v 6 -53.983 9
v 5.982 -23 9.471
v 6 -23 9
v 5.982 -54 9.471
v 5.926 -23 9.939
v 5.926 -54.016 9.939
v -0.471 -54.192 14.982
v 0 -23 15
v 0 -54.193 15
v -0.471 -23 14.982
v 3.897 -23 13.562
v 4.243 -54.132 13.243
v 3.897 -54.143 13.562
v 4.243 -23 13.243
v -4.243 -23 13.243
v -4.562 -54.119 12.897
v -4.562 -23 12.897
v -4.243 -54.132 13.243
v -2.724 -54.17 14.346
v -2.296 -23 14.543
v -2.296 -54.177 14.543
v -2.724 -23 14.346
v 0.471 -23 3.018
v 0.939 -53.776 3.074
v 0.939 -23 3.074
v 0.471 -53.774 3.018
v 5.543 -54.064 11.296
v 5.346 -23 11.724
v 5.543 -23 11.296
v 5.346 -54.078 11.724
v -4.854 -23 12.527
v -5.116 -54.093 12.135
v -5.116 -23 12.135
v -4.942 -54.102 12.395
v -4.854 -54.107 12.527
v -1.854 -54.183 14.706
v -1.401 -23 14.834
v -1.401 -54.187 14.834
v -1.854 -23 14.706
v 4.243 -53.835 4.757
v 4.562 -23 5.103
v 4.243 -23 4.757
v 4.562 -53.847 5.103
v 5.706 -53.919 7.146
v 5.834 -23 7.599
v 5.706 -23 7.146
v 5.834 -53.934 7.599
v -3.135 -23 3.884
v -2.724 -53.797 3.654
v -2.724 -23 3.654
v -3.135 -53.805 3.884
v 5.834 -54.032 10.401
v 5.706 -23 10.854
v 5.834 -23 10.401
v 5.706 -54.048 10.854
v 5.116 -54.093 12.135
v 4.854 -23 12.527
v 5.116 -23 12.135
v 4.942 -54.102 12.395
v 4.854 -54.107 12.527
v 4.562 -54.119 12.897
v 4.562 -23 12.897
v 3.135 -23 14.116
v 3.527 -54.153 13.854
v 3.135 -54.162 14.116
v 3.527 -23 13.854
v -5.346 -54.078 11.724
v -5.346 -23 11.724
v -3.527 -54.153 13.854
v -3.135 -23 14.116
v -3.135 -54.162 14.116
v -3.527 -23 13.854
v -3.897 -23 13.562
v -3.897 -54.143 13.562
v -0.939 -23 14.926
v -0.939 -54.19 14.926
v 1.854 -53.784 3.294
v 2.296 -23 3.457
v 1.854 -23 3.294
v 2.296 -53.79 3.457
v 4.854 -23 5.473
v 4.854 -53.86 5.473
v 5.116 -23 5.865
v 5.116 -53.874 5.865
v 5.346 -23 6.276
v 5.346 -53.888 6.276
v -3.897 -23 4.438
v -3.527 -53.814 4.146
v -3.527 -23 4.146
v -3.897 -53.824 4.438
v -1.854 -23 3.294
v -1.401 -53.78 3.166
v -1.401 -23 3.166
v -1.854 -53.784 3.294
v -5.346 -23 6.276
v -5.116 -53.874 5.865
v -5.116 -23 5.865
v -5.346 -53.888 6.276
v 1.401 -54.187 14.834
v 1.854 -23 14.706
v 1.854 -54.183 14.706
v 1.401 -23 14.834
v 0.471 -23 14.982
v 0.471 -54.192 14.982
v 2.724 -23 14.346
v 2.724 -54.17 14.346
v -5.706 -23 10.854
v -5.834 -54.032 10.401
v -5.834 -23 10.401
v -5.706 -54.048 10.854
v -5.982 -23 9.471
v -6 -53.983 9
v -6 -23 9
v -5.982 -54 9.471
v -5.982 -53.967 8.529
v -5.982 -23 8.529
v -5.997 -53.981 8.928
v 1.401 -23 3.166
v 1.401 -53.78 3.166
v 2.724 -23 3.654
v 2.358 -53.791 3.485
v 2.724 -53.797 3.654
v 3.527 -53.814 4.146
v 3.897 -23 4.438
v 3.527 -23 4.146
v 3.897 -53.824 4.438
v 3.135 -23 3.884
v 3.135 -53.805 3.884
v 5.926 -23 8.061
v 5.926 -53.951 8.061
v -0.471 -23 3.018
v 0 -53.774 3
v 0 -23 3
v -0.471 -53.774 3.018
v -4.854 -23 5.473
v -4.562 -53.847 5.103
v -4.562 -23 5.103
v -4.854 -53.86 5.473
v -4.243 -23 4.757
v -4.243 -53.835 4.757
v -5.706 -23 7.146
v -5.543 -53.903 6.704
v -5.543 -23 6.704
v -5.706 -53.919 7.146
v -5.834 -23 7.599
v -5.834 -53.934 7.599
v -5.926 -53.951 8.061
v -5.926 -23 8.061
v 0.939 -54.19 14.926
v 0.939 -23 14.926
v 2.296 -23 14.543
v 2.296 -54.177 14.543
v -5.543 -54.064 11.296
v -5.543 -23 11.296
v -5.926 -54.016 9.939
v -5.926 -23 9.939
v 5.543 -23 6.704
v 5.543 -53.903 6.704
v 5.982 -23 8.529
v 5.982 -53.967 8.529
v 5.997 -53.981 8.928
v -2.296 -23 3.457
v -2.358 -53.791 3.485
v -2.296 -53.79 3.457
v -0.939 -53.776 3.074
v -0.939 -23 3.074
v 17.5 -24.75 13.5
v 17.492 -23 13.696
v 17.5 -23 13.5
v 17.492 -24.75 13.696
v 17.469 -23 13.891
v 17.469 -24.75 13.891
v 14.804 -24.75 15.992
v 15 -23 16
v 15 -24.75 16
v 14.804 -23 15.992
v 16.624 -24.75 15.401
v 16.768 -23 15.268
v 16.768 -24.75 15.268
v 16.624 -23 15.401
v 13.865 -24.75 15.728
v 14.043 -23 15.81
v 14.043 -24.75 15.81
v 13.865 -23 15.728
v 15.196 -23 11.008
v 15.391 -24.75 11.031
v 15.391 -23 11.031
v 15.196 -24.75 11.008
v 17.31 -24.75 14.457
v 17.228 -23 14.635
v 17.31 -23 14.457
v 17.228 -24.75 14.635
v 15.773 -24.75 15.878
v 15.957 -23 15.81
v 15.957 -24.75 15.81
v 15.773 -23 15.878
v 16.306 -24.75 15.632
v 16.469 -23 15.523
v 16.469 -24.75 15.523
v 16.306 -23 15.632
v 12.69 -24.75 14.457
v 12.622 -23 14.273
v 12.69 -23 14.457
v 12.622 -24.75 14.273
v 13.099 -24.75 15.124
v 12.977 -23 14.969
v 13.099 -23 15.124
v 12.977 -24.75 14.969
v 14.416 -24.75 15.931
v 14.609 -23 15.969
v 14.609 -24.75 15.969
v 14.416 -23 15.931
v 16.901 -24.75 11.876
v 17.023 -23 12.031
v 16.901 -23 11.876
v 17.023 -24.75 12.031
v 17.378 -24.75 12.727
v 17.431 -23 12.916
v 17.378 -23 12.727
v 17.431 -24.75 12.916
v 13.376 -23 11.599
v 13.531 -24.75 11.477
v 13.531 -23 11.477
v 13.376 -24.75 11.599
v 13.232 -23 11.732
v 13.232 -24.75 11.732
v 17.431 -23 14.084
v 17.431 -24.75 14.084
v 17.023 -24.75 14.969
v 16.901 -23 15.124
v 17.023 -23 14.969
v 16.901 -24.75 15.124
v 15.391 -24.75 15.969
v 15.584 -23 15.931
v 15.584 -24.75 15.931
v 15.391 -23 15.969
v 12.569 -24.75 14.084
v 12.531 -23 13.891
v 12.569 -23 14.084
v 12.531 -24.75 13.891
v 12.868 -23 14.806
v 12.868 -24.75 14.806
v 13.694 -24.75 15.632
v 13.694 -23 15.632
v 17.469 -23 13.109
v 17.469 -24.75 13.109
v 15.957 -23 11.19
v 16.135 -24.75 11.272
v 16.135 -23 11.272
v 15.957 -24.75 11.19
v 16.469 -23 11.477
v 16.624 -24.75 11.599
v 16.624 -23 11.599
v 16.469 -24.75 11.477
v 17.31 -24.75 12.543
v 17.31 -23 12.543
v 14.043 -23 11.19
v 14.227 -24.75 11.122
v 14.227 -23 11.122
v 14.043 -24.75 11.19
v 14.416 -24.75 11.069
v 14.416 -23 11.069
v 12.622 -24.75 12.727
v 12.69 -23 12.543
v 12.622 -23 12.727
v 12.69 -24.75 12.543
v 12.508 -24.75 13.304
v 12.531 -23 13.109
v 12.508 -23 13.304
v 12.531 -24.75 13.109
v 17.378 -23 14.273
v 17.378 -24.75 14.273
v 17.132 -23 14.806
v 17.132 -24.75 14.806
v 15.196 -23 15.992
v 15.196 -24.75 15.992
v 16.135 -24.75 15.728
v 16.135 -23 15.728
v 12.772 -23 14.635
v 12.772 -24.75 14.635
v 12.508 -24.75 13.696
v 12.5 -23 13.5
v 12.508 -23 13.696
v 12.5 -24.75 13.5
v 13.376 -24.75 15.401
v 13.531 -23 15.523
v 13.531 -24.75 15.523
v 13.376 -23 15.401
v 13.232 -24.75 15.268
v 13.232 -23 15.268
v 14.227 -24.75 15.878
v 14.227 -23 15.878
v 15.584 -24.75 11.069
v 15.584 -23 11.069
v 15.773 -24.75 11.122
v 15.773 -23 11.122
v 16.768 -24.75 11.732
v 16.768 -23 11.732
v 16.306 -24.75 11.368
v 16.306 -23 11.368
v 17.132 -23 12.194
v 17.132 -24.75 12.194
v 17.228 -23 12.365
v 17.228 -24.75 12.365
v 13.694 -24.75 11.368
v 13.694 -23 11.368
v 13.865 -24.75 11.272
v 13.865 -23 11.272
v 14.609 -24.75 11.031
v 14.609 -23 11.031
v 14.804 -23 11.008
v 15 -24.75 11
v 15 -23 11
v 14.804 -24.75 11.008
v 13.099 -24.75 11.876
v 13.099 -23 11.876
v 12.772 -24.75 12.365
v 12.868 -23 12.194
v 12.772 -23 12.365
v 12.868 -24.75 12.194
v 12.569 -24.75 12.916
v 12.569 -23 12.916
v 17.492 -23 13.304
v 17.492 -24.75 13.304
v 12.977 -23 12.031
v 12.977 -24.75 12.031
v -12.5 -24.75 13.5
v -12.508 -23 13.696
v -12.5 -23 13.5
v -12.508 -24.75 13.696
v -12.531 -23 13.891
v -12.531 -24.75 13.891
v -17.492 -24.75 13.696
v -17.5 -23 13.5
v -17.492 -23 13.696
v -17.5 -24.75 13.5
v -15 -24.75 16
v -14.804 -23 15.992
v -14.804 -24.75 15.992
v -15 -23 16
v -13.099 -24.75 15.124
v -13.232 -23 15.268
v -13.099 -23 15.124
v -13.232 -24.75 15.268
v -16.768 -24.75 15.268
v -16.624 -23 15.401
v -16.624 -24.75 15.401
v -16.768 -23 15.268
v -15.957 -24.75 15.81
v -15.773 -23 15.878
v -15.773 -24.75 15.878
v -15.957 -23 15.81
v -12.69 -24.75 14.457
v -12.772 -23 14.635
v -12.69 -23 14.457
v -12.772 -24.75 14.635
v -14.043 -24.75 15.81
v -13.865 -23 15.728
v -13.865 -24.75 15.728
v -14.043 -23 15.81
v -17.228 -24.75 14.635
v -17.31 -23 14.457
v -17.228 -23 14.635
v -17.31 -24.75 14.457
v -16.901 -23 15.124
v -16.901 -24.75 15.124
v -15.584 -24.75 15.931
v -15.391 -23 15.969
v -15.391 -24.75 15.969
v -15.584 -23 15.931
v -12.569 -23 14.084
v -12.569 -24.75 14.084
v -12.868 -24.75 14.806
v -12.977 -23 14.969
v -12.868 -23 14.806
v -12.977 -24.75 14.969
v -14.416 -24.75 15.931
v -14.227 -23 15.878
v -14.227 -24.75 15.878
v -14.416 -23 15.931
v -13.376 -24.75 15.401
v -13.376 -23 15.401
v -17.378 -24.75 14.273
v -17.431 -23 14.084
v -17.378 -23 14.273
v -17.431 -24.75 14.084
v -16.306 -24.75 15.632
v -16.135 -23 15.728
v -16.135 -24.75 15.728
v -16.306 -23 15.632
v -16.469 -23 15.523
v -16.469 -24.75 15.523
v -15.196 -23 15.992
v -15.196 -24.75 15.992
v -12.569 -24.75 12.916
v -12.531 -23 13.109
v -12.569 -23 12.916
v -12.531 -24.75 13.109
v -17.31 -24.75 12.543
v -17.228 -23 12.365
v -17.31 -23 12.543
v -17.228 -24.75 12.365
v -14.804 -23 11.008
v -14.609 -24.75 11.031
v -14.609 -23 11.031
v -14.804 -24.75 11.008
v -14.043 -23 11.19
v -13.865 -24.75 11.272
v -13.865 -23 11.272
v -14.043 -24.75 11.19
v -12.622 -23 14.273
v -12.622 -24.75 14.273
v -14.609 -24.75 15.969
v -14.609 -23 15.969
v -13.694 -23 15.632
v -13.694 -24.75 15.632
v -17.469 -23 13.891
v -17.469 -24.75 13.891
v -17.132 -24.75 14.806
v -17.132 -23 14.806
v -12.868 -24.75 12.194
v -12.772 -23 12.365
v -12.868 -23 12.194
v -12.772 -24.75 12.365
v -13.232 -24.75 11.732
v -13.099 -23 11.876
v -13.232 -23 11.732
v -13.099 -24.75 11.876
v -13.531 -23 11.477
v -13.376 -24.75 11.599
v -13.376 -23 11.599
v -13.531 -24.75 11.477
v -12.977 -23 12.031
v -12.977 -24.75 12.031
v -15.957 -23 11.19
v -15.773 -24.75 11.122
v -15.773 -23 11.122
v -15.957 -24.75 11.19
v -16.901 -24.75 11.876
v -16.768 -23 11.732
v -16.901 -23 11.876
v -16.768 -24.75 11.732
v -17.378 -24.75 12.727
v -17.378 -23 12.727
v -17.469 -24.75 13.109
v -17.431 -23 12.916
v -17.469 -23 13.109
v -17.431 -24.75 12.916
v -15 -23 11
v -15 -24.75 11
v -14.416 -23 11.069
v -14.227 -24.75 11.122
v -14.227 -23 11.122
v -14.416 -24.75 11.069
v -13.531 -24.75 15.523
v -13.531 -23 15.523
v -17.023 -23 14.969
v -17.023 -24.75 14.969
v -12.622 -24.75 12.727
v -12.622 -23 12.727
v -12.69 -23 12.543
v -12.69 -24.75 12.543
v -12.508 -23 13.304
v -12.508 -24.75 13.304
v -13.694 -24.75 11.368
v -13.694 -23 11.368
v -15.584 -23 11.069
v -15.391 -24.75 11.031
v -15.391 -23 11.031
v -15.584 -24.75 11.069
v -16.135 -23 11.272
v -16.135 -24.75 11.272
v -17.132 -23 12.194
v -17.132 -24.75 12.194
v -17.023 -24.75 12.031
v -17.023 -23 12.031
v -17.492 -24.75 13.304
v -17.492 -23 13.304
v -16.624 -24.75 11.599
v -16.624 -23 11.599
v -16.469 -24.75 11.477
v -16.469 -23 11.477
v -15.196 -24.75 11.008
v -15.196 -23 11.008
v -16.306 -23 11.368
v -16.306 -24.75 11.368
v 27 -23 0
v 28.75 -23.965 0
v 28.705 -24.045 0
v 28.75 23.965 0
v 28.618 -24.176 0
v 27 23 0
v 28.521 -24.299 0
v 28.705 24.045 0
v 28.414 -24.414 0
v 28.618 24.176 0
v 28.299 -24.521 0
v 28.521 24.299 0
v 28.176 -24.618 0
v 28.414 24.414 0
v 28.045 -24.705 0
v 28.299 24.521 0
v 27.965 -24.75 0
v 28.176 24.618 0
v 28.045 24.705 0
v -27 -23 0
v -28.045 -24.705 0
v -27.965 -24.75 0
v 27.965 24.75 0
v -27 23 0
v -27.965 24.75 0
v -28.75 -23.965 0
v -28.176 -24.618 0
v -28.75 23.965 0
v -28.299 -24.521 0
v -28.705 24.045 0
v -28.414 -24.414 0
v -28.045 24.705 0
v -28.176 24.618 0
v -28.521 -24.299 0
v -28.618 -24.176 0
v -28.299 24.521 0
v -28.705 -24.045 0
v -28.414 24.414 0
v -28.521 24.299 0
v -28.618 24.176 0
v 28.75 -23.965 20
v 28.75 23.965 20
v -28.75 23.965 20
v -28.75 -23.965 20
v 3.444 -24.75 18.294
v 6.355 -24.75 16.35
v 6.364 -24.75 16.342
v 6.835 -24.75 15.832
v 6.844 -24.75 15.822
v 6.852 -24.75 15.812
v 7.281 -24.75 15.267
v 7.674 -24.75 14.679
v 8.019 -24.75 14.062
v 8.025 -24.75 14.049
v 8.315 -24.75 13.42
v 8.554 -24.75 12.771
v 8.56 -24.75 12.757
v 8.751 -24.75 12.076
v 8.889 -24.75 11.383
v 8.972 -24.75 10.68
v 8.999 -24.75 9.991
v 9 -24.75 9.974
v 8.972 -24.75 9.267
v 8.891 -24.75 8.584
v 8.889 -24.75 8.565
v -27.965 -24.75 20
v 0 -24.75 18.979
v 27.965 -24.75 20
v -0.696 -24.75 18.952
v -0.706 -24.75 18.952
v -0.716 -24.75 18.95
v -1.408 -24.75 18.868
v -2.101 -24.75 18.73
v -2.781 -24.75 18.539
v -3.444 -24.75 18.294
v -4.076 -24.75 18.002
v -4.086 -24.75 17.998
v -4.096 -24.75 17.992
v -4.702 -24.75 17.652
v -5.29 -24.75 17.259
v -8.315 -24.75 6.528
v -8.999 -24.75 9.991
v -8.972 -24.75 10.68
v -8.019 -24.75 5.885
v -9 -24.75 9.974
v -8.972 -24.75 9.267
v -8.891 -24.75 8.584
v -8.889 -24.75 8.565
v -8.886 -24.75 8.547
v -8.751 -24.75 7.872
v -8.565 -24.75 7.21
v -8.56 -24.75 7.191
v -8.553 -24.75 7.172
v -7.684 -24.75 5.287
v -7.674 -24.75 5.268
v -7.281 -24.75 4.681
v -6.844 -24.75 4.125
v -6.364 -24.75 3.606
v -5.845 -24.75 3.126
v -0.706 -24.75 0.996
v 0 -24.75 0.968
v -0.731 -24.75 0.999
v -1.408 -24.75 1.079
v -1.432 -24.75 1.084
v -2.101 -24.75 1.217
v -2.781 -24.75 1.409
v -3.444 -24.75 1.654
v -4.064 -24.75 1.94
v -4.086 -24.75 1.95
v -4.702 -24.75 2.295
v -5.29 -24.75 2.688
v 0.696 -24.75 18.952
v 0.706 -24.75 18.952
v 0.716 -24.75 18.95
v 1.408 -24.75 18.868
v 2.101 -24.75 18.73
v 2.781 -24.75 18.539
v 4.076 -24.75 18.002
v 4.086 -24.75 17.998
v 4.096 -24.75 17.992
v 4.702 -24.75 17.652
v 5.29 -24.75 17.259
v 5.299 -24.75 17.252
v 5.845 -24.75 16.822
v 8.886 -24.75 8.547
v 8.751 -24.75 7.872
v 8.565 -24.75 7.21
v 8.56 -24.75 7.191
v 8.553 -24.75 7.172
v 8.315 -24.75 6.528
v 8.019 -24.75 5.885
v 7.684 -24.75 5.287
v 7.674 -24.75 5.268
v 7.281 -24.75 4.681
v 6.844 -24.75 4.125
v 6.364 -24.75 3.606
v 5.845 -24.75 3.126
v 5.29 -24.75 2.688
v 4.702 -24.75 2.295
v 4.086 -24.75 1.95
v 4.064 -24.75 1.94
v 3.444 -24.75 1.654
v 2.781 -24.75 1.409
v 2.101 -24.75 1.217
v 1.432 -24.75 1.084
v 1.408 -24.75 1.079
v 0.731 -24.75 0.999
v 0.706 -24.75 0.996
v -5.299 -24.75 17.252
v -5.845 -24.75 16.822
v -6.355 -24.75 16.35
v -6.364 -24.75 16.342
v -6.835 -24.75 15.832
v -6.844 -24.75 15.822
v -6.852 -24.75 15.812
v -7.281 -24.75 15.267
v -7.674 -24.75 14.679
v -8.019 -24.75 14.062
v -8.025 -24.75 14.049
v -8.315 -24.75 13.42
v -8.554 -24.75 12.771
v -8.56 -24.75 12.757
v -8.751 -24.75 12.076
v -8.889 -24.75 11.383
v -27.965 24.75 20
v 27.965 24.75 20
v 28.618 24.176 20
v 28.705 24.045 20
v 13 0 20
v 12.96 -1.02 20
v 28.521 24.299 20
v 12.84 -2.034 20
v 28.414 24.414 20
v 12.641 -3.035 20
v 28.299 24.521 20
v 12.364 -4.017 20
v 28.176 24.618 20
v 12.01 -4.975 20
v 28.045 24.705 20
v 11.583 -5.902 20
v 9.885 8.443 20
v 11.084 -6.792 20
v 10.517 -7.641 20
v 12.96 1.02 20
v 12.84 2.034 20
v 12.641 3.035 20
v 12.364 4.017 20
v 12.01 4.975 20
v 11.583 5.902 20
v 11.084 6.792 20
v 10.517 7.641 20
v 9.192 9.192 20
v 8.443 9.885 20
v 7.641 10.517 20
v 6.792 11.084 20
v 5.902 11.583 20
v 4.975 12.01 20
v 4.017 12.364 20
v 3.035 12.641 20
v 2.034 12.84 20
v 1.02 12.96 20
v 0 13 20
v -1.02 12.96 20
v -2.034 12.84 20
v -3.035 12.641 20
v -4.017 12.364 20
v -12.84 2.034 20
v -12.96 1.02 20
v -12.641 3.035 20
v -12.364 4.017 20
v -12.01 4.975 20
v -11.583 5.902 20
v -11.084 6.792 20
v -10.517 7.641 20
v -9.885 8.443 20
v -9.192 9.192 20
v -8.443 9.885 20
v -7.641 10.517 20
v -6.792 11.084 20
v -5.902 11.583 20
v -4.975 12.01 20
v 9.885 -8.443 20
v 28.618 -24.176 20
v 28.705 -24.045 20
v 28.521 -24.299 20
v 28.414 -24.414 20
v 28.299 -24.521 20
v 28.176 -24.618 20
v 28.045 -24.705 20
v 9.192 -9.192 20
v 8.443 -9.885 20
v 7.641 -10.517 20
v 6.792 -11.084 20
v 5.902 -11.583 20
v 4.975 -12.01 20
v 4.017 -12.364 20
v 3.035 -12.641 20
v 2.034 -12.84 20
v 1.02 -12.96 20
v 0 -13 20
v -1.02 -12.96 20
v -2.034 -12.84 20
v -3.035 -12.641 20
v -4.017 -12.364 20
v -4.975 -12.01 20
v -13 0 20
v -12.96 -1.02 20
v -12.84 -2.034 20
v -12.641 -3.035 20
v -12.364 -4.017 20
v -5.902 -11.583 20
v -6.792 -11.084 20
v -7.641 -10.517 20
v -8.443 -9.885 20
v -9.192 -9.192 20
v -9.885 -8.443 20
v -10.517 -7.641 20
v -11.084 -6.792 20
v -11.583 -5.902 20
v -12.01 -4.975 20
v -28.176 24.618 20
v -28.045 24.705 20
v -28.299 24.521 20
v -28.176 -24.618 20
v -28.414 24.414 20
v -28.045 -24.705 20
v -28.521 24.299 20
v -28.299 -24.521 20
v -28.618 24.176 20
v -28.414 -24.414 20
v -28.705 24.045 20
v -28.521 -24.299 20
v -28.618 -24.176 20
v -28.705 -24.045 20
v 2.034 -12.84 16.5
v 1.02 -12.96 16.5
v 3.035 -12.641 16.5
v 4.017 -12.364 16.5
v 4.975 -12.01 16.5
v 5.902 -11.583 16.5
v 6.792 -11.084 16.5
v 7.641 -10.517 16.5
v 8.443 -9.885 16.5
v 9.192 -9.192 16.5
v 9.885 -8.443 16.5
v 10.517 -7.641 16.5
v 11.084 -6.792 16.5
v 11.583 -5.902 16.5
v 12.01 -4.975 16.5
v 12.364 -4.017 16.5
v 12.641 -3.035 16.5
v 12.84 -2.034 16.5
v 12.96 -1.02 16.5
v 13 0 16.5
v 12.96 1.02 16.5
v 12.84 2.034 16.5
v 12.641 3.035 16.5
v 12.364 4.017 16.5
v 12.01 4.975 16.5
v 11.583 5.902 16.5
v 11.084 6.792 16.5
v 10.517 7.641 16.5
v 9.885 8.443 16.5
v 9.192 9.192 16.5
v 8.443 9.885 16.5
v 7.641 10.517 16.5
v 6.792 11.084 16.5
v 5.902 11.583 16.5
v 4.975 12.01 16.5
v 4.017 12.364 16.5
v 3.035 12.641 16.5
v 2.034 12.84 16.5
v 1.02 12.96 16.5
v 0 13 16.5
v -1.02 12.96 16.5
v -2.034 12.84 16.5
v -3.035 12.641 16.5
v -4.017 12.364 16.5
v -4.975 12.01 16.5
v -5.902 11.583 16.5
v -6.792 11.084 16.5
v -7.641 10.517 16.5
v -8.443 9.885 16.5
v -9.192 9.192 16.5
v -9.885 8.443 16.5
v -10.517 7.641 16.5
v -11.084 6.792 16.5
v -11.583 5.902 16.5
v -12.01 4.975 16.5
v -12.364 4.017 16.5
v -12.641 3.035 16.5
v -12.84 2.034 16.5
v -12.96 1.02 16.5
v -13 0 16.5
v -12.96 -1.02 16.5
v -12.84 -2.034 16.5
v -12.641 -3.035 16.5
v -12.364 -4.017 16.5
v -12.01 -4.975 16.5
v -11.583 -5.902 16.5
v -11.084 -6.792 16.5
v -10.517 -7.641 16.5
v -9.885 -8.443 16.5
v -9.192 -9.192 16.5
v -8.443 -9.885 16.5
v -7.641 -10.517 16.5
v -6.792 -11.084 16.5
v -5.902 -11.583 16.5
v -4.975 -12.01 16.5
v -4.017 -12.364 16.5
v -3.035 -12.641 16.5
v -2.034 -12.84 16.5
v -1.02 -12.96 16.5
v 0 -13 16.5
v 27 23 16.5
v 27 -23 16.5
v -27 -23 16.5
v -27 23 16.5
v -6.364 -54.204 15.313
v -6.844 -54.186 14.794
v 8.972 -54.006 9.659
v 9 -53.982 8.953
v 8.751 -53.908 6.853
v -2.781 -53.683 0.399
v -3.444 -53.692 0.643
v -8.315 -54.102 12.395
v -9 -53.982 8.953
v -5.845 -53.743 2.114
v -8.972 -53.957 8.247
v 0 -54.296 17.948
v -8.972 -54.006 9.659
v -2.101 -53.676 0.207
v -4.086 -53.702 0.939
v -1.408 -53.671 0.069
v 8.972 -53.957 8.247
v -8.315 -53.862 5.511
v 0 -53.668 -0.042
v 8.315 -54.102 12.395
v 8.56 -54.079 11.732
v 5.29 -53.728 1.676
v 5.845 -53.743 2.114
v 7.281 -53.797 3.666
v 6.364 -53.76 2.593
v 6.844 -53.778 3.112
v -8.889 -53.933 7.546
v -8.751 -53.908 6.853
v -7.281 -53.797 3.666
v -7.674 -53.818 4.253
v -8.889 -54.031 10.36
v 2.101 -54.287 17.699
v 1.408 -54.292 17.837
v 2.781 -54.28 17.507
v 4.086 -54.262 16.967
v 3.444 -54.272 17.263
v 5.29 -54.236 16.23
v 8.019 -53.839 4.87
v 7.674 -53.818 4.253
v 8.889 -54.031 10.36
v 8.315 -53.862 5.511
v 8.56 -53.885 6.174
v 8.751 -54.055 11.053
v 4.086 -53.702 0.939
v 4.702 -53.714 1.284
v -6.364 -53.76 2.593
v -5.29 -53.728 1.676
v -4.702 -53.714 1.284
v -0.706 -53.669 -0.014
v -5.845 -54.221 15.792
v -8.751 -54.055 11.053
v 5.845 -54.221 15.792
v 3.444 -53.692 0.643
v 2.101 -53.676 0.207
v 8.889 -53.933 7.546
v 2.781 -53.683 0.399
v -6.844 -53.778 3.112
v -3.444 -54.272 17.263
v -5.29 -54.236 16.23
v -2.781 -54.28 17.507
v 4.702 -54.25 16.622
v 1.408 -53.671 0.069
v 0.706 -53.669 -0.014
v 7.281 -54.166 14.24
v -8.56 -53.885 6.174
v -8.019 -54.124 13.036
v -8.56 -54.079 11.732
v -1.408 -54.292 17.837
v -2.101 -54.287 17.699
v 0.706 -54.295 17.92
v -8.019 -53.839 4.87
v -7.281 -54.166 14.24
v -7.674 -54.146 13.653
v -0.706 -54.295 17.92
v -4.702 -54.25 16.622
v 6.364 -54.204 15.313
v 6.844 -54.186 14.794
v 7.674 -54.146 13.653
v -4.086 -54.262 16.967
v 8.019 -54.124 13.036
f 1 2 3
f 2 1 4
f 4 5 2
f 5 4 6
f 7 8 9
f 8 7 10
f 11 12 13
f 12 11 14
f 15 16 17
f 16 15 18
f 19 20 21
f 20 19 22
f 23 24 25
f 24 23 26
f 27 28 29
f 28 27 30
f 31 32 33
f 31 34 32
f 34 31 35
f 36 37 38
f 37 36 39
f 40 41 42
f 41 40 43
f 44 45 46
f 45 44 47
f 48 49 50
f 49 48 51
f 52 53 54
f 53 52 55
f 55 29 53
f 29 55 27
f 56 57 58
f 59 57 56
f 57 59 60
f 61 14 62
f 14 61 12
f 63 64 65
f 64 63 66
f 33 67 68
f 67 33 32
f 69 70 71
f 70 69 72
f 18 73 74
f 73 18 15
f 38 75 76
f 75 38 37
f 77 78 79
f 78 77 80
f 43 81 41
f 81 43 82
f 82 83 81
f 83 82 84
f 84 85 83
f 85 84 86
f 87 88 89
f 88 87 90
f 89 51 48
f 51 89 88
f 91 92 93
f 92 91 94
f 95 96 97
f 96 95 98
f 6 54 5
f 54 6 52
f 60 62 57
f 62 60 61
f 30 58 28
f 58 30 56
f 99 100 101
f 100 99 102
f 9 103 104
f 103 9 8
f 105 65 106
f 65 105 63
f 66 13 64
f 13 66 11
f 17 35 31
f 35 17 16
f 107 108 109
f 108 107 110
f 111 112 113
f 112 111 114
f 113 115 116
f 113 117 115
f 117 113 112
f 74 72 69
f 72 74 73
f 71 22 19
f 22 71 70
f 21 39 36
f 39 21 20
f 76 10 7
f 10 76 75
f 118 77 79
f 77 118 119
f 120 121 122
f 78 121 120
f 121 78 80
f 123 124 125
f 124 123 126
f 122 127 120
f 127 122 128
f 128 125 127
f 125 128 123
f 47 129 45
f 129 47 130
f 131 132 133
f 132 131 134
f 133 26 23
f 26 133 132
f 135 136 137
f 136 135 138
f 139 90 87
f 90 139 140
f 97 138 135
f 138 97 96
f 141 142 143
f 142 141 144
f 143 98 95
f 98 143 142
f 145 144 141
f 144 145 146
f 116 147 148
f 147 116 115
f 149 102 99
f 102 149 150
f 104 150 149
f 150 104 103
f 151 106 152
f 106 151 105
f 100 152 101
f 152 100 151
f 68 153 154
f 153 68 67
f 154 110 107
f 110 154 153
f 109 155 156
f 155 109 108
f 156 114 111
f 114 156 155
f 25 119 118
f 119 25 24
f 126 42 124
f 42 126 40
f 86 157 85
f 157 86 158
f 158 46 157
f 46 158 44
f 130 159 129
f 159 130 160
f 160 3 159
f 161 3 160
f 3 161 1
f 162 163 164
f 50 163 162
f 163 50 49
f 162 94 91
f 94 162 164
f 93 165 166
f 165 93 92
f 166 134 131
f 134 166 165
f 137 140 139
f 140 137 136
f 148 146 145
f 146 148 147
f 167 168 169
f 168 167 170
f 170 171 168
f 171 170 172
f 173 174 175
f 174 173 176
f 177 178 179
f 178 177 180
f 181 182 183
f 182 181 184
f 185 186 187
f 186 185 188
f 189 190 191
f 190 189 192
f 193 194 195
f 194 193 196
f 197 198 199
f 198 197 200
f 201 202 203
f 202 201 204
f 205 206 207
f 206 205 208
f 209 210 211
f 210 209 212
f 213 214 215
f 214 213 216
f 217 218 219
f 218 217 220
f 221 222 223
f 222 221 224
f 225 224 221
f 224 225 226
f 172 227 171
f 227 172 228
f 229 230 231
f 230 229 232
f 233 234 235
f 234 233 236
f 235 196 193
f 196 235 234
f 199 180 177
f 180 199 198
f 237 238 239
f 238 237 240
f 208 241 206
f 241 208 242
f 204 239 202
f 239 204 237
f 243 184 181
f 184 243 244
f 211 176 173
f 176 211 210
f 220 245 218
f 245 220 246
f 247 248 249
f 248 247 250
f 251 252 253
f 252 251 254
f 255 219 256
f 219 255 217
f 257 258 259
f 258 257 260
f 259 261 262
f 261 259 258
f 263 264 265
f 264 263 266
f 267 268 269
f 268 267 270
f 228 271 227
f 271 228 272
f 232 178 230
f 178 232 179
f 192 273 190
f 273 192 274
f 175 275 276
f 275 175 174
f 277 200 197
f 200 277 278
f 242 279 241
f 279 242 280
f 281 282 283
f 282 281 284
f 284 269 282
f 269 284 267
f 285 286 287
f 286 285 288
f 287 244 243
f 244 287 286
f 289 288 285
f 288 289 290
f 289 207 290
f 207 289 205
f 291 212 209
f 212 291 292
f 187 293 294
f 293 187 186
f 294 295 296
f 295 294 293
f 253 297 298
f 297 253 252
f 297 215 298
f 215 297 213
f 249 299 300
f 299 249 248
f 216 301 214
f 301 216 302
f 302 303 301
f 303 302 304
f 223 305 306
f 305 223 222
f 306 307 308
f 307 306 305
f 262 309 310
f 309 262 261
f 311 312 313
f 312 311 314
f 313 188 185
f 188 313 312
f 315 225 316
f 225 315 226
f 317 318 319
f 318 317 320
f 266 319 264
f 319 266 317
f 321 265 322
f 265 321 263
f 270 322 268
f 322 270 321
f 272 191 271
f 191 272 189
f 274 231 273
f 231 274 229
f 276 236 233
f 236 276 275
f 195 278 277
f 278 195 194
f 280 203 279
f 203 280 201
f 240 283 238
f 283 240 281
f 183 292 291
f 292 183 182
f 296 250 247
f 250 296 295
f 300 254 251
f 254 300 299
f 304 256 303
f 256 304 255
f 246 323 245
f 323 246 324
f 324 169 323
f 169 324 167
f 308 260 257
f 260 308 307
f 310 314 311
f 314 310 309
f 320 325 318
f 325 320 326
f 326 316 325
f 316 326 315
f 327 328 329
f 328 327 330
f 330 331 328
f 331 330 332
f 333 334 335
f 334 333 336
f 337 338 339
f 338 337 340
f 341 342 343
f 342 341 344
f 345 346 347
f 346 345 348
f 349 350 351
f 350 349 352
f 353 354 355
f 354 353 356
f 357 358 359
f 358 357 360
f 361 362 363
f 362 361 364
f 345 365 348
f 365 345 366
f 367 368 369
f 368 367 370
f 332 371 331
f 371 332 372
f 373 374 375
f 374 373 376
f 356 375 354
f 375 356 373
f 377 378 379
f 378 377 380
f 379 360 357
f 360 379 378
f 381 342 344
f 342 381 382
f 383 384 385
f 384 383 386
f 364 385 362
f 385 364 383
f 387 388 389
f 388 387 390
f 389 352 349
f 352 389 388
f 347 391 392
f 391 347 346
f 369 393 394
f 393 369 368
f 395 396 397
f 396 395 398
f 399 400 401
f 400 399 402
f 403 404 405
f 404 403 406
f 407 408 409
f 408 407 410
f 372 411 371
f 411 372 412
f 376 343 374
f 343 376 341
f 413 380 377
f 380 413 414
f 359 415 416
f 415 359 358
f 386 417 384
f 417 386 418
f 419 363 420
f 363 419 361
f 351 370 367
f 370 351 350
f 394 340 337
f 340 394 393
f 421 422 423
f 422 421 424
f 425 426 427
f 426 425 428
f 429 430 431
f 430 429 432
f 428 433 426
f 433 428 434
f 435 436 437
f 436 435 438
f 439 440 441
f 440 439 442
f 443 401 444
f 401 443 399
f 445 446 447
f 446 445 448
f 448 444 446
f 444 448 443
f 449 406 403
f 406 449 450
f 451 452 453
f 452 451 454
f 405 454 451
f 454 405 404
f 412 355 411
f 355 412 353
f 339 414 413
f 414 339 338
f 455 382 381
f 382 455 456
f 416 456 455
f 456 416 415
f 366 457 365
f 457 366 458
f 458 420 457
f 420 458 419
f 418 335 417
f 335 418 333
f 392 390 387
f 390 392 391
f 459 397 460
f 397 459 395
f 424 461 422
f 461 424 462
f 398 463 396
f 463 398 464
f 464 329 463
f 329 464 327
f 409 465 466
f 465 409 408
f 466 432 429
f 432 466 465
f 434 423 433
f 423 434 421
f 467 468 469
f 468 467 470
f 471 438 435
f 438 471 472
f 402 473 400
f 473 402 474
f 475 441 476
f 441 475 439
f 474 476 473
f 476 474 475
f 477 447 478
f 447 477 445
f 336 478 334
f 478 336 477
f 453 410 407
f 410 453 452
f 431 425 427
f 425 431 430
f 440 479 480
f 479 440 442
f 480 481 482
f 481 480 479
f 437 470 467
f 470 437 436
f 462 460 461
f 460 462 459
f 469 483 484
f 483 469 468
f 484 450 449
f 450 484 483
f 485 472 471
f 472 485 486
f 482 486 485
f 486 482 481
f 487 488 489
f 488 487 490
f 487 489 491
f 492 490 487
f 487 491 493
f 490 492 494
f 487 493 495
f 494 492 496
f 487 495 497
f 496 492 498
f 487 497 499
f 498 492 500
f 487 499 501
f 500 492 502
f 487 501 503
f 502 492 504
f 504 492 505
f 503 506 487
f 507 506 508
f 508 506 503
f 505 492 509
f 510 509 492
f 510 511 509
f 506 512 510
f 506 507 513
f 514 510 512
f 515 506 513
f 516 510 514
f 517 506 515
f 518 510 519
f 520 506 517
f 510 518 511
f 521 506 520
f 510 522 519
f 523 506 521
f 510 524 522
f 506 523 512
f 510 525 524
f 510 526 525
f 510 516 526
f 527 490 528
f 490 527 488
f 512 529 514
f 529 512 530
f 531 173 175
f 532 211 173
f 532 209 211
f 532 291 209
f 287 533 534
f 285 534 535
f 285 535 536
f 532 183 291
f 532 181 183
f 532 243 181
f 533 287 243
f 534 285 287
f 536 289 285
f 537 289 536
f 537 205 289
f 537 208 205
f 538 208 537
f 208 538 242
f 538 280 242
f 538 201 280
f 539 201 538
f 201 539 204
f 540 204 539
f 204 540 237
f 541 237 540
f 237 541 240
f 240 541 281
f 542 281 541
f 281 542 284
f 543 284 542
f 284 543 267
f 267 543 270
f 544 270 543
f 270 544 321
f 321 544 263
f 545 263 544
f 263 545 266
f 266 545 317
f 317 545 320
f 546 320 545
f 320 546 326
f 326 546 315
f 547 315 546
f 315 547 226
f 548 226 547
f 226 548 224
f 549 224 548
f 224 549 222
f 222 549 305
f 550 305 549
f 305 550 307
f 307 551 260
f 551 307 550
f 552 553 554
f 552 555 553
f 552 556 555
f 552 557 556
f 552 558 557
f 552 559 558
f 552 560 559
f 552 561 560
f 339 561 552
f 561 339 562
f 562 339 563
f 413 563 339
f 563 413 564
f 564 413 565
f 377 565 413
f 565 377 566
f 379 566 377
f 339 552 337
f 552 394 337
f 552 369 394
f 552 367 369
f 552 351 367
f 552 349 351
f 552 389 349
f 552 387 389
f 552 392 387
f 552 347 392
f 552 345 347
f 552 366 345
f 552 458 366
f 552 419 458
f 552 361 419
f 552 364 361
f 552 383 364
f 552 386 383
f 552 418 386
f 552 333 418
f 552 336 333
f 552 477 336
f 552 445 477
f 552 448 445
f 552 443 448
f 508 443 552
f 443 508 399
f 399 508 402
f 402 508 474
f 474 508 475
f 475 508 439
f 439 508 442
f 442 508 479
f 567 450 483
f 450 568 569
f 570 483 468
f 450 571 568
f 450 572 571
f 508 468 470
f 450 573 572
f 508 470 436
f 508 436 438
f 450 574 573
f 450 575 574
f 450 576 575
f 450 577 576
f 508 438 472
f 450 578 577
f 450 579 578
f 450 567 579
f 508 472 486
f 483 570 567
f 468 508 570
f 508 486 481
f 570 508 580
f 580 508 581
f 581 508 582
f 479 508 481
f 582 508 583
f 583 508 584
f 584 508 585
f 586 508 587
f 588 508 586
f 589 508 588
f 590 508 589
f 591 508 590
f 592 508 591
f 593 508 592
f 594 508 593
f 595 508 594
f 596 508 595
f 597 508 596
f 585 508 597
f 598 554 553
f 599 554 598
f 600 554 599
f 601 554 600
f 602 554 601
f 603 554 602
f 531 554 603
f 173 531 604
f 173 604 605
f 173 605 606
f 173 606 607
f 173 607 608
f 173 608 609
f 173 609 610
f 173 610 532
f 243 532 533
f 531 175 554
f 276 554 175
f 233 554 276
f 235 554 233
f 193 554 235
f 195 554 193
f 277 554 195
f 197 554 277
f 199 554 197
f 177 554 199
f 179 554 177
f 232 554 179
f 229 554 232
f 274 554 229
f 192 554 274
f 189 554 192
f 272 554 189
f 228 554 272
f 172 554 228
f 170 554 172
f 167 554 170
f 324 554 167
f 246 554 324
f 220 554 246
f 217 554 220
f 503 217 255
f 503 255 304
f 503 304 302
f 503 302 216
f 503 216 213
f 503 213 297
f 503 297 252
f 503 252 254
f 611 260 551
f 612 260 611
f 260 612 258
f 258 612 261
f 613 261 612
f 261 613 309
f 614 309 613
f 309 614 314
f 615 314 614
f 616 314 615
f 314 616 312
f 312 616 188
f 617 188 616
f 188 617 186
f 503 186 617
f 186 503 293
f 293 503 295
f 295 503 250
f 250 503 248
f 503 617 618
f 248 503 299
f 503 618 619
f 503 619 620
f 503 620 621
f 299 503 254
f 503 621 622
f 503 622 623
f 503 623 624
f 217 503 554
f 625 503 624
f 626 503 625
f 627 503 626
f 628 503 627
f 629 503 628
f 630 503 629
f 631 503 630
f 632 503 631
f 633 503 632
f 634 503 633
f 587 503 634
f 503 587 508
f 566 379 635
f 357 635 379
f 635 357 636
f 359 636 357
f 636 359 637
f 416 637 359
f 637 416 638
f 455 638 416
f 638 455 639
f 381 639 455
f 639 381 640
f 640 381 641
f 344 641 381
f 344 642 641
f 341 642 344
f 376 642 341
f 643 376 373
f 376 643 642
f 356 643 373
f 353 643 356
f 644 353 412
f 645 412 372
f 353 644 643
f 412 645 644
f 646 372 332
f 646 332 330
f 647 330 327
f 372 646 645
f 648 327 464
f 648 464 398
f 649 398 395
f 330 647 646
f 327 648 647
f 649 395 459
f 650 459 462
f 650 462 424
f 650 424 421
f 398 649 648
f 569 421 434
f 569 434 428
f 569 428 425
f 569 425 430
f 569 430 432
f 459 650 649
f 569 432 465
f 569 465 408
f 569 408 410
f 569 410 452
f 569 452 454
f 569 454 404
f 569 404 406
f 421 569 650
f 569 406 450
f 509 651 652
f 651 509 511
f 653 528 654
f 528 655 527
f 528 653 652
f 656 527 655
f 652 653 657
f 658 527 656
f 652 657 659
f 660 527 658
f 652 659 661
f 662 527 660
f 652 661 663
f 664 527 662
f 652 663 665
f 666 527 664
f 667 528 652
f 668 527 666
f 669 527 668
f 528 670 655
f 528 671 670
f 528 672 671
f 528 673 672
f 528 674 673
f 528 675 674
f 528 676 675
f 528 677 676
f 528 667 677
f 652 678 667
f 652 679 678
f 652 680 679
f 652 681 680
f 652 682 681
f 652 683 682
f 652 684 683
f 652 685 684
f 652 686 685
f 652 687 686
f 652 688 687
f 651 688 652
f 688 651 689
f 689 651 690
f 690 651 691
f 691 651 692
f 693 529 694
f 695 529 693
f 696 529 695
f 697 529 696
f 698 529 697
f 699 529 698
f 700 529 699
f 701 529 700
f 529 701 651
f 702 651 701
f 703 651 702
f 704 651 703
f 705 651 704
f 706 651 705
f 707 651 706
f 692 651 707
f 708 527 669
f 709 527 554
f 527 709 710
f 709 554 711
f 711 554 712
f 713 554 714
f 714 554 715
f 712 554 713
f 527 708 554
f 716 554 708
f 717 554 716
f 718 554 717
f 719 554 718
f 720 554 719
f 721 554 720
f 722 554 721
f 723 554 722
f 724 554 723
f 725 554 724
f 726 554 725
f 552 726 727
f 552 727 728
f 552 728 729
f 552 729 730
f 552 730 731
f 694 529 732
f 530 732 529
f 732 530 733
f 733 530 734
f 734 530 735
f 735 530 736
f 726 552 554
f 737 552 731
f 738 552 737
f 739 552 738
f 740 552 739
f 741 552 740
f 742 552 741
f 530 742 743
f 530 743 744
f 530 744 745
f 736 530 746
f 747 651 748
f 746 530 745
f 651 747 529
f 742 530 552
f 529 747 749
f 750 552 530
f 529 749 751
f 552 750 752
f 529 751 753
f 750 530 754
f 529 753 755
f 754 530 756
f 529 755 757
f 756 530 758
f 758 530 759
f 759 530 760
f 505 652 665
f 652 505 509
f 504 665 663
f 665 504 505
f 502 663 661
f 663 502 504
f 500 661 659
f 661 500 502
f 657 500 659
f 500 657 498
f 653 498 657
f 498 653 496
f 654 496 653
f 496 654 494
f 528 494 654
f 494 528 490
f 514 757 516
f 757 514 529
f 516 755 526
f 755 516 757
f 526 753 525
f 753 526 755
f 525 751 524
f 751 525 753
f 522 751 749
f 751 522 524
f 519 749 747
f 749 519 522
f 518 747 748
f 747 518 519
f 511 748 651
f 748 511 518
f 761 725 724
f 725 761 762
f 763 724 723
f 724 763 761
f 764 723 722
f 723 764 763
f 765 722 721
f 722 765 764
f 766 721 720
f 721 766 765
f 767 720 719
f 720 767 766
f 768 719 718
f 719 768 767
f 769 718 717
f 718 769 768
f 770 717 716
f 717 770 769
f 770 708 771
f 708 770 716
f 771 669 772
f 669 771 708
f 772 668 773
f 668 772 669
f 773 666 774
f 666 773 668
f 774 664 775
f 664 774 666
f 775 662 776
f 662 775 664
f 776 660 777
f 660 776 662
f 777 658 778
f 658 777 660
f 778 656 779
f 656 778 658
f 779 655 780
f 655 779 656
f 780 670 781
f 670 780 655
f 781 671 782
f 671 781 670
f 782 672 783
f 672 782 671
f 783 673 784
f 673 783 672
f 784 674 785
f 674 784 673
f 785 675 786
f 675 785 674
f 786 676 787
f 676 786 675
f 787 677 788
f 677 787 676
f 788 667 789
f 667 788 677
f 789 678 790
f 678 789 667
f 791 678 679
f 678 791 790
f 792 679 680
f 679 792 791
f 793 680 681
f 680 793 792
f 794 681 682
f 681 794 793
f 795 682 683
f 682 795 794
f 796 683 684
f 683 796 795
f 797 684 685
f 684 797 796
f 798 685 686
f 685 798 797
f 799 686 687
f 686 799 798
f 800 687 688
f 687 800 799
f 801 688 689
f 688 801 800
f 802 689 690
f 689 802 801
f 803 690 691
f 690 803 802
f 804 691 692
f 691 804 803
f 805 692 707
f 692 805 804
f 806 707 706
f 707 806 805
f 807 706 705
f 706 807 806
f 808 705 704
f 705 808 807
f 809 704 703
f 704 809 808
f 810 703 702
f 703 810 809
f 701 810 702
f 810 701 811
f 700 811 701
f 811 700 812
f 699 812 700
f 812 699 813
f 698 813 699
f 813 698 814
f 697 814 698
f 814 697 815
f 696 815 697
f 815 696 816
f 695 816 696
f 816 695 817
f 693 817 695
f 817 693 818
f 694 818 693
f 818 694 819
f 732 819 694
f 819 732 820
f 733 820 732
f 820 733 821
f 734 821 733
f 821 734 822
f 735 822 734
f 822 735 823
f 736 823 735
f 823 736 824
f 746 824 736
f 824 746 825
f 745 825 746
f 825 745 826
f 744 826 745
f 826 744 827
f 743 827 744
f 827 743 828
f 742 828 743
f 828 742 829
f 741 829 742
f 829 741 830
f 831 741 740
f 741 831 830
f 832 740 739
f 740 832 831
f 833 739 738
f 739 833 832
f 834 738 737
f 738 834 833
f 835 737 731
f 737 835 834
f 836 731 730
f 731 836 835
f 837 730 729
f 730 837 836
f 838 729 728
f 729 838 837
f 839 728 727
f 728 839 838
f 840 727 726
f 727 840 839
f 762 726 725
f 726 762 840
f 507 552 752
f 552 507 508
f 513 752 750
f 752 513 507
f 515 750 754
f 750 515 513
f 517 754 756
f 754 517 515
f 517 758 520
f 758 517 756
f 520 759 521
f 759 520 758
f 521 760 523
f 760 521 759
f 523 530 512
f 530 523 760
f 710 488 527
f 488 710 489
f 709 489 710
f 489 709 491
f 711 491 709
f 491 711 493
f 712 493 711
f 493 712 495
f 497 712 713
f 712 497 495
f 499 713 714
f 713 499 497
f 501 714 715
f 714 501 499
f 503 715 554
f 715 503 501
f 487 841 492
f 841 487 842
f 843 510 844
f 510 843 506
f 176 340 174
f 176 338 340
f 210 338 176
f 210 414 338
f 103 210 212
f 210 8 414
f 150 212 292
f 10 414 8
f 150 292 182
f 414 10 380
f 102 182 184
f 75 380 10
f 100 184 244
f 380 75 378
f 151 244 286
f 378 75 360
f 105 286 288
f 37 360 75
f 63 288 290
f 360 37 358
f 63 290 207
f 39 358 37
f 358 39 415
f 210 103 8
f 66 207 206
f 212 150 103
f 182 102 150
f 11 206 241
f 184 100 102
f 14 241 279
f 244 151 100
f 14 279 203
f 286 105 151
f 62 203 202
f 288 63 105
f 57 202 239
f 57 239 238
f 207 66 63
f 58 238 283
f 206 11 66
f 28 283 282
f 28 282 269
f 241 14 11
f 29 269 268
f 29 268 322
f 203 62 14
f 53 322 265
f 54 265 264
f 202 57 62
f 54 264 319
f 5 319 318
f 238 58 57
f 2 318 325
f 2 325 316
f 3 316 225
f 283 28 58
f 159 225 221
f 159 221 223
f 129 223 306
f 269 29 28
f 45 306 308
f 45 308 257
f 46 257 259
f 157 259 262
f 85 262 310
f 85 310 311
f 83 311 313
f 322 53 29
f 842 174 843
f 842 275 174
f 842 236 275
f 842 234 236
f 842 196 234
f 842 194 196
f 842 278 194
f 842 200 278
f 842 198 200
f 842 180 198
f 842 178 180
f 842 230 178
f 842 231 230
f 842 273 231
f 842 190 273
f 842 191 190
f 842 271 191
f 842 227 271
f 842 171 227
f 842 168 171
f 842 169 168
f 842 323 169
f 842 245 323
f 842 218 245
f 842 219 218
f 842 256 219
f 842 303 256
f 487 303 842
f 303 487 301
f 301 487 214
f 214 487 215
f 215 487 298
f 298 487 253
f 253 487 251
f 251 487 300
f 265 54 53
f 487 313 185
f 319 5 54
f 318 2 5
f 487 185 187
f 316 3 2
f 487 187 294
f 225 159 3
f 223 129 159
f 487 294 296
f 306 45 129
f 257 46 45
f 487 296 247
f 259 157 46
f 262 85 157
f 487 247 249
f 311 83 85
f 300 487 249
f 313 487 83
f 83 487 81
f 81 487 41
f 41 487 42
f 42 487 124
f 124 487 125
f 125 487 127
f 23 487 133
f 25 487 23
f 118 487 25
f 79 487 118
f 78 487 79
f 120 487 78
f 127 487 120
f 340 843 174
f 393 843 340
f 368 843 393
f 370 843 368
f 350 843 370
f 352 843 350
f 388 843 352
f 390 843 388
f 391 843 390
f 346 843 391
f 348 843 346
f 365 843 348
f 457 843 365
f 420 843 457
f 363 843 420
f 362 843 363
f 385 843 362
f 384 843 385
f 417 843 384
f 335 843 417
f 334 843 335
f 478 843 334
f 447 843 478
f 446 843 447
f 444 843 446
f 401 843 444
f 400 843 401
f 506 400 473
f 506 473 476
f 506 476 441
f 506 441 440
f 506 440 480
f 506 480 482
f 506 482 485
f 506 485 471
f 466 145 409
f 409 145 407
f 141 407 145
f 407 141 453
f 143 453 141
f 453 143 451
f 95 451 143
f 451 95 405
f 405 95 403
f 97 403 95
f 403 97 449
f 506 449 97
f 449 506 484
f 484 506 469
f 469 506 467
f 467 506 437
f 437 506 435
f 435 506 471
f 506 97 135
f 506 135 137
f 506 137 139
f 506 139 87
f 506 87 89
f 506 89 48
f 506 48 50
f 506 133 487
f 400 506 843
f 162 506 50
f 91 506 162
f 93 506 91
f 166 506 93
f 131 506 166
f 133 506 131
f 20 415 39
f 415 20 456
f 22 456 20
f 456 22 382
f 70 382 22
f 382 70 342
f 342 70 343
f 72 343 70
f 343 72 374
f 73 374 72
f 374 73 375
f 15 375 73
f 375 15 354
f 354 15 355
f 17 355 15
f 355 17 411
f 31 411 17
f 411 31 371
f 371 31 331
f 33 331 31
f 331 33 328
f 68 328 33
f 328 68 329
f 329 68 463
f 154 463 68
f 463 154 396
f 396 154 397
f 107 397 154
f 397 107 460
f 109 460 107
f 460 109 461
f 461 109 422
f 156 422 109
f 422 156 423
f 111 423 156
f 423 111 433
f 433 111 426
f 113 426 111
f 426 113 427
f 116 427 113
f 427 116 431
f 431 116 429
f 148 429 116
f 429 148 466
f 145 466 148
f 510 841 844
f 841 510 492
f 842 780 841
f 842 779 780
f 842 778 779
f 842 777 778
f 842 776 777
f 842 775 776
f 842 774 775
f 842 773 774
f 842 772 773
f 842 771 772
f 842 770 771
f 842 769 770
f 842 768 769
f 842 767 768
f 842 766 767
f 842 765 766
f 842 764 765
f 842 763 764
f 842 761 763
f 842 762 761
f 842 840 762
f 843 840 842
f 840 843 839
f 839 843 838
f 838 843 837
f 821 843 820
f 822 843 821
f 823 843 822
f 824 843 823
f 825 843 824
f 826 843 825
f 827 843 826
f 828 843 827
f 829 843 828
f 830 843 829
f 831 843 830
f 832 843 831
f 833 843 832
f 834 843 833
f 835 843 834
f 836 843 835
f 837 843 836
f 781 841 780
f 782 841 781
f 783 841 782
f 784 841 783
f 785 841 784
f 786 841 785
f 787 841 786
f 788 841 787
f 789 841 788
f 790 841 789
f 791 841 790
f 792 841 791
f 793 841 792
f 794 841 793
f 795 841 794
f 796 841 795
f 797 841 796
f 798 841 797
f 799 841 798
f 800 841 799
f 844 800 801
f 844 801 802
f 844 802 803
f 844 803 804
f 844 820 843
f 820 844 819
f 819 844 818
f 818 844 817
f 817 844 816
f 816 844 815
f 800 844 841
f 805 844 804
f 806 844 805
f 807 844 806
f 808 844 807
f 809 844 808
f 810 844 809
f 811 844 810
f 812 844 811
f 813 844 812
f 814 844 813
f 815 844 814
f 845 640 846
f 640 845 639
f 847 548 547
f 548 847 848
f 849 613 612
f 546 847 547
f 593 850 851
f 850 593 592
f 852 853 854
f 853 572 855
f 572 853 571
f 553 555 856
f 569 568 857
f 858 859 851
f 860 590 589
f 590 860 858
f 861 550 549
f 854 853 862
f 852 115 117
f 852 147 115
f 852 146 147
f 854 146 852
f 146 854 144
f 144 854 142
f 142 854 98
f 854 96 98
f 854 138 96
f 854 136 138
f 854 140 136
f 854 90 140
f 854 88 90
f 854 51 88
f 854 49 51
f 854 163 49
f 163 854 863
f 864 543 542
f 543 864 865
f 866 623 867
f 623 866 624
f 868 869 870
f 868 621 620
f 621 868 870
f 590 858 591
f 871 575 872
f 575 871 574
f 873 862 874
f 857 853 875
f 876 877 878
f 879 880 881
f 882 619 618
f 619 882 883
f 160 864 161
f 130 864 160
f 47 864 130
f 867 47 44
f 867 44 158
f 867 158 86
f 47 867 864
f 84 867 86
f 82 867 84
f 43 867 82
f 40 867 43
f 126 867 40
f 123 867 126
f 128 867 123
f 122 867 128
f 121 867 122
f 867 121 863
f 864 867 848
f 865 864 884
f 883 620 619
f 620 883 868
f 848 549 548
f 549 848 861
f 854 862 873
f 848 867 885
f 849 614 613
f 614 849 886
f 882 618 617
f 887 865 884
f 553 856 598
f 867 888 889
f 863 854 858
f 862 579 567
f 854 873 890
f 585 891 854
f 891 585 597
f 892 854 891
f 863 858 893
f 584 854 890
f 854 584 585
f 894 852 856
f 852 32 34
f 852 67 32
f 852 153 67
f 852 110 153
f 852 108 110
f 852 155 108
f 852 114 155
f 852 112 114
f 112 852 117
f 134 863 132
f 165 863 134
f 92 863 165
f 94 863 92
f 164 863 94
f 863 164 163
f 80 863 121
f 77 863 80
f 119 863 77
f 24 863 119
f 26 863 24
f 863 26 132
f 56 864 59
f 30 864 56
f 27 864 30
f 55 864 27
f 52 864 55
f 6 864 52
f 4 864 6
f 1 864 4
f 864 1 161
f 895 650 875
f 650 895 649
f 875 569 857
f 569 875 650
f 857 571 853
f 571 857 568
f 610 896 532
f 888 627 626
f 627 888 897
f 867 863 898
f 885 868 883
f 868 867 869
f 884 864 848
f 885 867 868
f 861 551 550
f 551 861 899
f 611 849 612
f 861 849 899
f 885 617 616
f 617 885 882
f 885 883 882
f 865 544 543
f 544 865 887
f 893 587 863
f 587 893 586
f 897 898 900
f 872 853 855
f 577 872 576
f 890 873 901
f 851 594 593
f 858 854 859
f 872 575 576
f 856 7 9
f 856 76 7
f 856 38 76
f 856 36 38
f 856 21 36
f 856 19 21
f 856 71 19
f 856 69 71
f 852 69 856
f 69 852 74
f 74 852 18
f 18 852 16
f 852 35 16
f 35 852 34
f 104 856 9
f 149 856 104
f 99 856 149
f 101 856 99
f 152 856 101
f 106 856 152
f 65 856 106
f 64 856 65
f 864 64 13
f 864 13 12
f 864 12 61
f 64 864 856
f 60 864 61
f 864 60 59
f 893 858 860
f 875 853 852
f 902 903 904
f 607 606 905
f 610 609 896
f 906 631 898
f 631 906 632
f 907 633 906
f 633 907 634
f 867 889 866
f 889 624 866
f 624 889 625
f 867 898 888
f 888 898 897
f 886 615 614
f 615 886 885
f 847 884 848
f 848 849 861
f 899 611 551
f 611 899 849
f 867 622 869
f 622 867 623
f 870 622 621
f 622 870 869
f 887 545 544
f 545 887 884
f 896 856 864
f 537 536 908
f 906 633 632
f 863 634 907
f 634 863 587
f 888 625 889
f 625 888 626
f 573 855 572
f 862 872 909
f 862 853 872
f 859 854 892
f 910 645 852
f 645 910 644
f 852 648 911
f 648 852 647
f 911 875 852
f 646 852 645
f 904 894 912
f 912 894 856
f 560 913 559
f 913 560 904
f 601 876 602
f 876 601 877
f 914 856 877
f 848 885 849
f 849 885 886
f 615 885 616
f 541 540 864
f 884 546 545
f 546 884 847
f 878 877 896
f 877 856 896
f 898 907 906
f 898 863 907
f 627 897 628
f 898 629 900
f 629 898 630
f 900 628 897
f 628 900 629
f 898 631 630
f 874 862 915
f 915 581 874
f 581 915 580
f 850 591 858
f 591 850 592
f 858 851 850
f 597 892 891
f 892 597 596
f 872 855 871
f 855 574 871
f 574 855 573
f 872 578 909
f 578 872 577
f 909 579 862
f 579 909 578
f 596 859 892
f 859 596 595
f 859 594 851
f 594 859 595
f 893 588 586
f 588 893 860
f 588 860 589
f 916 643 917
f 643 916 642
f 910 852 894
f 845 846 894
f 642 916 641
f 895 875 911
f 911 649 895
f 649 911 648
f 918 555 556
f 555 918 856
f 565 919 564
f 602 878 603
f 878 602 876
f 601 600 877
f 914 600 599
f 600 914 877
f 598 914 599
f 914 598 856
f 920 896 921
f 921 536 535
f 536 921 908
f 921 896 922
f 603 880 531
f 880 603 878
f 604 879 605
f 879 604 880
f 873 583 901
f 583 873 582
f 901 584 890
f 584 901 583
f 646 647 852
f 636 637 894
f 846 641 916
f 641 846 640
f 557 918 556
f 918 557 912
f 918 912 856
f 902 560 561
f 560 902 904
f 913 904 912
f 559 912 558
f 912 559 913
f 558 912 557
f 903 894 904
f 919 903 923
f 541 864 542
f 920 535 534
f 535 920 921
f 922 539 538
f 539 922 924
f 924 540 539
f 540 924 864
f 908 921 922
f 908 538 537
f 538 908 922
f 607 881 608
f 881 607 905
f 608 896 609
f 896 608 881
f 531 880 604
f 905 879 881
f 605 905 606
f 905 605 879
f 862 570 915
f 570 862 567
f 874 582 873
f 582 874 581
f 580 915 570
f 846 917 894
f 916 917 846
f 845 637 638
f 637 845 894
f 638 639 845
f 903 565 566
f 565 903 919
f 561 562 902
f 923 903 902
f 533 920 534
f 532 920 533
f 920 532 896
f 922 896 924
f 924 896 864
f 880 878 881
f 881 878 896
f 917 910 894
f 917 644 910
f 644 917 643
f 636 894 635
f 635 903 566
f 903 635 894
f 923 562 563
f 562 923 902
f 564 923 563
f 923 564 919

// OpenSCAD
$fs = 0.01;
$fn = 80;

l=54;
w=46;
h=20;
edge=2;
letterHole=13;
thickness=3.5;


module front() {
    difference() {
        linear_extrude(h)  square ([l+thickness,w+thickness],true);
        union() {
            translate ([-0, -0, -0.5])
              linear_extrude(l+1) {
                translate ([0, -0, -0]) circle(letterHole);
                translate ([l/2-edge+2,w/2-edge+2,0])
                    difference() {square(edge+2);circle(edge);}
                translate ([-(l/2-edge+2),(w/2-edge+2),0])
                    rotate(90) difference() {square(edge+1);circle(edge);}
                translate ([-(l/2-edge+2),-(w/2-edge+2),0])
                    rotate(180) difference() {square(edge+1);circle(edge);}
                translate ([(l/2-edge+2),-(w/2-edge+2),0])
                    rotate(270) difference() {square(edge+1);circle(edge);}
            }
        }
    }
}


module stand() {
 rotate([2,0,0]) 
 difference() {
    color("red")   rotate([90,0,0]) linear_extrude(30) scale([2,2,1]) circle(d=9);
 }
}

difference() {
  union() {
    // box
    difference() {
        front();
        translate ([0,0,-3.5])
           linear_extrude(h)  square ([l,w],true);
    }

    // stand
     translate ([0,-24,10]) stand();
   }
  union() {
   translate ([0,-20,9]) rotate([90,0,0]) cylinder(50,6,6);
   translate ([15,-20,13.5]) rotate([90,0,0]) cylinder(50,2.5,2.5);
   translate ([-15,-20,13.5]) rotate([90,0,0]) cylinder(50,2.5,2.5);
  }
}


/*

color("green")
    translate([0, 30, 0])
        rotate_extrude($fn = 80)
            polygon( points=[[0,0],[8,4],[4,8],[4,12],[12,16],[0,20]] );
            
            
color("red")
    translate([10, -10, 0])
        linear_extrude(10)
            polygon( points=[[0,0],[8,4],[4,8],[4,12],[12,16],[0,20]] );
*/
